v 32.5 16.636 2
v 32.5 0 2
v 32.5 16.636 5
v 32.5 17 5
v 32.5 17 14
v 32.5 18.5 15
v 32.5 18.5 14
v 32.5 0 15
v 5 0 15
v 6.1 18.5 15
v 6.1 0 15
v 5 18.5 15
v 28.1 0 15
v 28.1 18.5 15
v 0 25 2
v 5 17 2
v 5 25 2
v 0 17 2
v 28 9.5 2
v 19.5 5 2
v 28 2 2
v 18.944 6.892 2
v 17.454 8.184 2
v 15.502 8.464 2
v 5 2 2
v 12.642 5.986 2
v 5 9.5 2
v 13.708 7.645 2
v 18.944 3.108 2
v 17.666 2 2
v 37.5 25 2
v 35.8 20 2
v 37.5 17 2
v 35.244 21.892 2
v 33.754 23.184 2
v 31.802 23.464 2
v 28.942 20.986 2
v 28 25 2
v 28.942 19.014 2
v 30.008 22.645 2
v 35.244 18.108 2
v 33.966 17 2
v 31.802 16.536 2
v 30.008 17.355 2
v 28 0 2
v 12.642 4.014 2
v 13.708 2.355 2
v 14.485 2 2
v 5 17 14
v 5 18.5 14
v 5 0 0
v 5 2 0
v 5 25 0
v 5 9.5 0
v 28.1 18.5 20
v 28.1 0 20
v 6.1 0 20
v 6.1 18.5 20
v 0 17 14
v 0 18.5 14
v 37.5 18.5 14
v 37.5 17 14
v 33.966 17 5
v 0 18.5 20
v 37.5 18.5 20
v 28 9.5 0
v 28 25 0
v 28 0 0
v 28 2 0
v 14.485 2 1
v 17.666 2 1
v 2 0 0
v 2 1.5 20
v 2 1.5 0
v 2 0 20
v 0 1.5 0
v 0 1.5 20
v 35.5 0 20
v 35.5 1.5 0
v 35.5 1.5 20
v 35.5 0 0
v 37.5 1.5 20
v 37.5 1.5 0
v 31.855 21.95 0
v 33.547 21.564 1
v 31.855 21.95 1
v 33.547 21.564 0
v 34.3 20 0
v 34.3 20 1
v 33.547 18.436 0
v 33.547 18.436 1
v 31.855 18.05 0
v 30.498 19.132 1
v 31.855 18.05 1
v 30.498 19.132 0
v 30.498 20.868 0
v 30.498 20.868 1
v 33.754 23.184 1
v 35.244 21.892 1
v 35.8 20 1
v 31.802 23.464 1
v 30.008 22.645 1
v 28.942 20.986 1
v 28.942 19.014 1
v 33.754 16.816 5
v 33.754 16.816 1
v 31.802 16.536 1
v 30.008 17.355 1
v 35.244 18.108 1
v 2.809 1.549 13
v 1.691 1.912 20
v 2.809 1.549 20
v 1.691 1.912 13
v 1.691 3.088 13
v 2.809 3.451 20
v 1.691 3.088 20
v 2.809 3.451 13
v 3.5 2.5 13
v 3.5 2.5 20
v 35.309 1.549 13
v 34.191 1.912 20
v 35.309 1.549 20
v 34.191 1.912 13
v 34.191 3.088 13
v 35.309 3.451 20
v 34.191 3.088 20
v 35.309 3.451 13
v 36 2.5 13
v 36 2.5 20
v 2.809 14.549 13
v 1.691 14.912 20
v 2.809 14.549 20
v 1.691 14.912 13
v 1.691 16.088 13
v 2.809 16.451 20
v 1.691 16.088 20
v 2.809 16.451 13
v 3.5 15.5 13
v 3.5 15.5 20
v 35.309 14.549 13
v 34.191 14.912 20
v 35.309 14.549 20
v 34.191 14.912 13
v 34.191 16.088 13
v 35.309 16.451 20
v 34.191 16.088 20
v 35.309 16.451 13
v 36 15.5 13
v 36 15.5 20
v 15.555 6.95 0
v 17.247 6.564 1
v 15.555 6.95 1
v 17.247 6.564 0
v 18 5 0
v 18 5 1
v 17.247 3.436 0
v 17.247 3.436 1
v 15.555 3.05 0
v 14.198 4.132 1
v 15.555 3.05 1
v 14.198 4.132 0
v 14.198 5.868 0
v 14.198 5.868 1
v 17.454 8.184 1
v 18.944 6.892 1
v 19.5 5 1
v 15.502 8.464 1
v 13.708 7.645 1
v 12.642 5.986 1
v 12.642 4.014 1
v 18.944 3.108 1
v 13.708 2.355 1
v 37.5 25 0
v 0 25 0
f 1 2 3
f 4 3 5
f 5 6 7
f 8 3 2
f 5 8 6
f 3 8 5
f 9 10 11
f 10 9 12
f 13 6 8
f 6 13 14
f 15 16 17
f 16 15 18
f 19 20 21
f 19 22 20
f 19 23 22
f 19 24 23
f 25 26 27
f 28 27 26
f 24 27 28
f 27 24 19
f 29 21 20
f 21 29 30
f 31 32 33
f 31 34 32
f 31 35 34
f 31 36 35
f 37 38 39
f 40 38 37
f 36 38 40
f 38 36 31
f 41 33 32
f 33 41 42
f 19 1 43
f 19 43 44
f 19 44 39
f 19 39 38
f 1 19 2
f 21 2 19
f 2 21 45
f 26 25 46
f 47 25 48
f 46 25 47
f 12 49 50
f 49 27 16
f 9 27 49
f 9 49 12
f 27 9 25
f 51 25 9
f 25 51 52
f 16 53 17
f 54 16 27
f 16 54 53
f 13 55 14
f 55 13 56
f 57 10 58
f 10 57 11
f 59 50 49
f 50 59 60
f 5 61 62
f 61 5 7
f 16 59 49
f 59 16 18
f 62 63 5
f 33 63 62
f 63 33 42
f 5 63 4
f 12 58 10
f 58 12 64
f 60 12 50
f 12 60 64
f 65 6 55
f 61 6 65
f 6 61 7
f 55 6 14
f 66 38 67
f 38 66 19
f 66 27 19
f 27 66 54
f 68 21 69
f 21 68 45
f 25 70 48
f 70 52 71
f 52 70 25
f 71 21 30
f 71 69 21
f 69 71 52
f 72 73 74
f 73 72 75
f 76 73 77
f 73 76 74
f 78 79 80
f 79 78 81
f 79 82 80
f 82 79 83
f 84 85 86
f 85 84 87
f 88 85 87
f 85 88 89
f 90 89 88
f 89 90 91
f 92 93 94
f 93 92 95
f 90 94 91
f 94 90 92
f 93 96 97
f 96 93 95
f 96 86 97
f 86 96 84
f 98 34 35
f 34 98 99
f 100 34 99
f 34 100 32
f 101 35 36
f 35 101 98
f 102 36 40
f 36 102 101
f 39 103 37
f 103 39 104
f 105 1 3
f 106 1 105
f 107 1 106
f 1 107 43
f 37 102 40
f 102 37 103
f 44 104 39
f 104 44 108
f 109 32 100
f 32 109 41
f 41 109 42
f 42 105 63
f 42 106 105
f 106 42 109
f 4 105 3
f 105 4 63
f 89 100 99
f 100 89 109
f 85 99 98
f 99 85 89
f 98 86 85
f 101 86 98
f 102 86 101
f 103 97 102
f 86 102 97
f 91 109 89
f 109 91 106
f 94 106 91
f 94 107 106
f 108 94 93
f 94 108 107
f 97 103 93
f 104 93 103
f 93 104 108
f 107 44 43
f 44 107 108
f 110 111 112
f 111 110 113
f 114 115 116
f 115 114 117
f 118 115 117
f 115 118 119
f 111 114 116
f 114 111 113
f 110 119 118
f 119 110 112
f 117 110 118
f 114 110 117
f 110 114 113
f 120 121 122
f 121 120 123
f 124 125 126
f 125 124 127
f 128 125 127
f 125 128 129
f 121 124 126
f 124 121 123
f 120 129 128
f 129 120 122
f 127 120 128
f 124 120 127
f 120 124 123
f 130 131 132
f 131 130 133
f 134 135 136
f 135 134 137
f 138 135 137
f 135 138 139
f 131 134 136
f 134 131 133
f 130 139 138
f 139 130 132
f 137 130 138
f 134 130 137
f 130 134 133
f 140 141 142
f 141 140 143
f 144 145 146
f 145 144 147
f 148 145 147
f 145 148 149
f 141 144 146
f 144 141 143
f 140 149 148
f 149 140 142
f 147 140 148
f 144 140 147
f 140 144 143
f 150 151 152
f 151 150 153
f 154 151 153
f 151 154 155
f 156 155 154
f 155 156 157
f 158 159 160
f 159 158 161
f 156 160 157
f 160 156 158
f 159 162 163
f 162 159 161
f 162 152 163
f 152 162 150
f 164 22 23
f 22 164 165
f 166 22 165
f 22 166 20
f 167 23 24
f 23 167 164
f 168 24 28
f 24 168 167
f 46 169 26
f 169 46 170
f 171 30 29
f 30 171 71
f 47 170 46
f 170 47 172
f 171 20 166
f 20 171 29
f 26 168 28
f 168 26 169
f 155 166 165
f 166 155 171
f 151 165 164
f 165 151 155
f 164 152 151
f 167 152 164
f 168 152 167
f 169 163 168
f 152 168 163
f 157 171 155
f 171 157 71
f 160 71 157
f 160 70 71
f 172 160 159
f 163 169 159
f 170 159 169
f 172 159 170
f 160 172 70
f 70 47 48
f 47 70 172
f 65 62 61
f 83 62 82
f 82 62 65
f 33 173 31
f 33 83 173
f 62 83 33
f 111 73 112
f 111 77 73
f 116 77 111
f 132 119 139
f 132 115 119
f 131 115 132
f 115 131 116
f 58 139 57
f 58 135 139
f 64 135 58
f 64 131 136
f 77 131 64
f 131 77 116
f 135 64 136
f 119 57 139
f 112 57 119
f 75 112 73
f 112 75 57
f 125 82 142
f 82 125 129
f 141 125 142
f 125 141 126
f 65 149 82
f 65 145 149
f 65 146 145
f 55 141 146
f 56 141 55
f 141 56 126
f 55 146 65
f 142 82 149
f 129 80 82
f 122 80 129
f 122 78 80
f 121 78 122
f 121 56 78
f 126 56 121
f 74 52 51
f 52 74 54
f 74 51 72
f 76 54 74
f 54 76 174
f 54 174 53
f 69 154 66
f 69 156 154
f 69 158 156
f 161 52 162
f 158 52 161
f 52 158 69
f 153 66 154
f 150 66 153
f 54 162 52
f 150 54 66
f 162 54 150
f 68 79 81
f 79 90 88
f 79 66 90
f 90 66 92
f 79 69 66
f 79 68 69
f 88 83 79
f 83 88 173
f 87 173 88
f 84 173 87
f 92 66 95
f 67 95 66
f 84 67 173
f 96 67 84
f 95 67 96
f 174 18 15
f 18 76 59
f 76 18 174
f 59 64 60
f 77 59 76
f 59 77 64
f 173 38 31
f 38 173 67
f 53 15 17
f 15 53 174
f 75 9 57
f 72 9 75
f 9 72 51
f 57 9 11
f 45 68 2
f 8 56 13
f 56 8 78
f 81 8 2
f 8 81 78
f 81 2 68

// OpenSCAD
color("green") {

    difference() {
        cube([37.5, 25, 20], center = false);
        union() {

            // Main hole
            translate([5, -1, 2]) {
                cube([27.5, 27, 13], center = false);
            }

            // Top opening
            translate([6.1, -1, 12]) {
                cube([22, 27, 9], center = false);
            }

            // Top, back opening
            translate([-1, 17, 2]) {
                cube([39.5, 12, 12], center = false);
            }
            translate([-1, 18.5, 2]) {
                cube([39.5, 12, 19], center = false);
            }

            // Bottom, back opening
            translate([5, 9.5, -1]) {
                cube([23, 18, 4], center = false);
            }

            // Bottom, front opening
            translate([5, -1, -1]) {
                cube([23, 3, 4], center = false);
            }
            
            // Side recesses
            translate([-1, -1, -1]) {
                cube([3, 2.5, 25], center = false);
            }
            translate([35.5, -1, -1]) {
                cube([4, 2.5, 25], center = false);
            }

            // Screw hole
            translate([32.3, 20, -1]) {
                cylinder(h = 4, d1 = 4, d2 = 4, center = false);
            }
            translate([32.3, 20, 1]) {
                cylinder(h = 4, d1 = 7, d2 = 7, center = false);
            }

            // Board mounting holes
            translate([2.5, 2.5, 13]) {
                cylinder(h = 8, d1 = 2, d2 = 2, center = false);
            }
            translate([35, 2.5, 13]) {
                cylinder(h = 8, d1 = 2, d2 = 2, center = false);
            }
            translate([2.5, 15.5, 13]) {
                cylinder(h = 8, d1 = 2, d2 = 2, center = false);
            }
            translate([35, 15.5, 13]) {
                cylinder(h = 8, d1 = 2, d2 = 2, center = false);
            }

            // Center screw hole
            translate([16, 5, -1]) {
                cylinder(h=4, d1 = 4, d2=4, center = false);
            }
            translate([16, 5, 1]) {
                cylinder(h=4, d1 = 7, d2=7, center = false);
            }
        }
    }
}
